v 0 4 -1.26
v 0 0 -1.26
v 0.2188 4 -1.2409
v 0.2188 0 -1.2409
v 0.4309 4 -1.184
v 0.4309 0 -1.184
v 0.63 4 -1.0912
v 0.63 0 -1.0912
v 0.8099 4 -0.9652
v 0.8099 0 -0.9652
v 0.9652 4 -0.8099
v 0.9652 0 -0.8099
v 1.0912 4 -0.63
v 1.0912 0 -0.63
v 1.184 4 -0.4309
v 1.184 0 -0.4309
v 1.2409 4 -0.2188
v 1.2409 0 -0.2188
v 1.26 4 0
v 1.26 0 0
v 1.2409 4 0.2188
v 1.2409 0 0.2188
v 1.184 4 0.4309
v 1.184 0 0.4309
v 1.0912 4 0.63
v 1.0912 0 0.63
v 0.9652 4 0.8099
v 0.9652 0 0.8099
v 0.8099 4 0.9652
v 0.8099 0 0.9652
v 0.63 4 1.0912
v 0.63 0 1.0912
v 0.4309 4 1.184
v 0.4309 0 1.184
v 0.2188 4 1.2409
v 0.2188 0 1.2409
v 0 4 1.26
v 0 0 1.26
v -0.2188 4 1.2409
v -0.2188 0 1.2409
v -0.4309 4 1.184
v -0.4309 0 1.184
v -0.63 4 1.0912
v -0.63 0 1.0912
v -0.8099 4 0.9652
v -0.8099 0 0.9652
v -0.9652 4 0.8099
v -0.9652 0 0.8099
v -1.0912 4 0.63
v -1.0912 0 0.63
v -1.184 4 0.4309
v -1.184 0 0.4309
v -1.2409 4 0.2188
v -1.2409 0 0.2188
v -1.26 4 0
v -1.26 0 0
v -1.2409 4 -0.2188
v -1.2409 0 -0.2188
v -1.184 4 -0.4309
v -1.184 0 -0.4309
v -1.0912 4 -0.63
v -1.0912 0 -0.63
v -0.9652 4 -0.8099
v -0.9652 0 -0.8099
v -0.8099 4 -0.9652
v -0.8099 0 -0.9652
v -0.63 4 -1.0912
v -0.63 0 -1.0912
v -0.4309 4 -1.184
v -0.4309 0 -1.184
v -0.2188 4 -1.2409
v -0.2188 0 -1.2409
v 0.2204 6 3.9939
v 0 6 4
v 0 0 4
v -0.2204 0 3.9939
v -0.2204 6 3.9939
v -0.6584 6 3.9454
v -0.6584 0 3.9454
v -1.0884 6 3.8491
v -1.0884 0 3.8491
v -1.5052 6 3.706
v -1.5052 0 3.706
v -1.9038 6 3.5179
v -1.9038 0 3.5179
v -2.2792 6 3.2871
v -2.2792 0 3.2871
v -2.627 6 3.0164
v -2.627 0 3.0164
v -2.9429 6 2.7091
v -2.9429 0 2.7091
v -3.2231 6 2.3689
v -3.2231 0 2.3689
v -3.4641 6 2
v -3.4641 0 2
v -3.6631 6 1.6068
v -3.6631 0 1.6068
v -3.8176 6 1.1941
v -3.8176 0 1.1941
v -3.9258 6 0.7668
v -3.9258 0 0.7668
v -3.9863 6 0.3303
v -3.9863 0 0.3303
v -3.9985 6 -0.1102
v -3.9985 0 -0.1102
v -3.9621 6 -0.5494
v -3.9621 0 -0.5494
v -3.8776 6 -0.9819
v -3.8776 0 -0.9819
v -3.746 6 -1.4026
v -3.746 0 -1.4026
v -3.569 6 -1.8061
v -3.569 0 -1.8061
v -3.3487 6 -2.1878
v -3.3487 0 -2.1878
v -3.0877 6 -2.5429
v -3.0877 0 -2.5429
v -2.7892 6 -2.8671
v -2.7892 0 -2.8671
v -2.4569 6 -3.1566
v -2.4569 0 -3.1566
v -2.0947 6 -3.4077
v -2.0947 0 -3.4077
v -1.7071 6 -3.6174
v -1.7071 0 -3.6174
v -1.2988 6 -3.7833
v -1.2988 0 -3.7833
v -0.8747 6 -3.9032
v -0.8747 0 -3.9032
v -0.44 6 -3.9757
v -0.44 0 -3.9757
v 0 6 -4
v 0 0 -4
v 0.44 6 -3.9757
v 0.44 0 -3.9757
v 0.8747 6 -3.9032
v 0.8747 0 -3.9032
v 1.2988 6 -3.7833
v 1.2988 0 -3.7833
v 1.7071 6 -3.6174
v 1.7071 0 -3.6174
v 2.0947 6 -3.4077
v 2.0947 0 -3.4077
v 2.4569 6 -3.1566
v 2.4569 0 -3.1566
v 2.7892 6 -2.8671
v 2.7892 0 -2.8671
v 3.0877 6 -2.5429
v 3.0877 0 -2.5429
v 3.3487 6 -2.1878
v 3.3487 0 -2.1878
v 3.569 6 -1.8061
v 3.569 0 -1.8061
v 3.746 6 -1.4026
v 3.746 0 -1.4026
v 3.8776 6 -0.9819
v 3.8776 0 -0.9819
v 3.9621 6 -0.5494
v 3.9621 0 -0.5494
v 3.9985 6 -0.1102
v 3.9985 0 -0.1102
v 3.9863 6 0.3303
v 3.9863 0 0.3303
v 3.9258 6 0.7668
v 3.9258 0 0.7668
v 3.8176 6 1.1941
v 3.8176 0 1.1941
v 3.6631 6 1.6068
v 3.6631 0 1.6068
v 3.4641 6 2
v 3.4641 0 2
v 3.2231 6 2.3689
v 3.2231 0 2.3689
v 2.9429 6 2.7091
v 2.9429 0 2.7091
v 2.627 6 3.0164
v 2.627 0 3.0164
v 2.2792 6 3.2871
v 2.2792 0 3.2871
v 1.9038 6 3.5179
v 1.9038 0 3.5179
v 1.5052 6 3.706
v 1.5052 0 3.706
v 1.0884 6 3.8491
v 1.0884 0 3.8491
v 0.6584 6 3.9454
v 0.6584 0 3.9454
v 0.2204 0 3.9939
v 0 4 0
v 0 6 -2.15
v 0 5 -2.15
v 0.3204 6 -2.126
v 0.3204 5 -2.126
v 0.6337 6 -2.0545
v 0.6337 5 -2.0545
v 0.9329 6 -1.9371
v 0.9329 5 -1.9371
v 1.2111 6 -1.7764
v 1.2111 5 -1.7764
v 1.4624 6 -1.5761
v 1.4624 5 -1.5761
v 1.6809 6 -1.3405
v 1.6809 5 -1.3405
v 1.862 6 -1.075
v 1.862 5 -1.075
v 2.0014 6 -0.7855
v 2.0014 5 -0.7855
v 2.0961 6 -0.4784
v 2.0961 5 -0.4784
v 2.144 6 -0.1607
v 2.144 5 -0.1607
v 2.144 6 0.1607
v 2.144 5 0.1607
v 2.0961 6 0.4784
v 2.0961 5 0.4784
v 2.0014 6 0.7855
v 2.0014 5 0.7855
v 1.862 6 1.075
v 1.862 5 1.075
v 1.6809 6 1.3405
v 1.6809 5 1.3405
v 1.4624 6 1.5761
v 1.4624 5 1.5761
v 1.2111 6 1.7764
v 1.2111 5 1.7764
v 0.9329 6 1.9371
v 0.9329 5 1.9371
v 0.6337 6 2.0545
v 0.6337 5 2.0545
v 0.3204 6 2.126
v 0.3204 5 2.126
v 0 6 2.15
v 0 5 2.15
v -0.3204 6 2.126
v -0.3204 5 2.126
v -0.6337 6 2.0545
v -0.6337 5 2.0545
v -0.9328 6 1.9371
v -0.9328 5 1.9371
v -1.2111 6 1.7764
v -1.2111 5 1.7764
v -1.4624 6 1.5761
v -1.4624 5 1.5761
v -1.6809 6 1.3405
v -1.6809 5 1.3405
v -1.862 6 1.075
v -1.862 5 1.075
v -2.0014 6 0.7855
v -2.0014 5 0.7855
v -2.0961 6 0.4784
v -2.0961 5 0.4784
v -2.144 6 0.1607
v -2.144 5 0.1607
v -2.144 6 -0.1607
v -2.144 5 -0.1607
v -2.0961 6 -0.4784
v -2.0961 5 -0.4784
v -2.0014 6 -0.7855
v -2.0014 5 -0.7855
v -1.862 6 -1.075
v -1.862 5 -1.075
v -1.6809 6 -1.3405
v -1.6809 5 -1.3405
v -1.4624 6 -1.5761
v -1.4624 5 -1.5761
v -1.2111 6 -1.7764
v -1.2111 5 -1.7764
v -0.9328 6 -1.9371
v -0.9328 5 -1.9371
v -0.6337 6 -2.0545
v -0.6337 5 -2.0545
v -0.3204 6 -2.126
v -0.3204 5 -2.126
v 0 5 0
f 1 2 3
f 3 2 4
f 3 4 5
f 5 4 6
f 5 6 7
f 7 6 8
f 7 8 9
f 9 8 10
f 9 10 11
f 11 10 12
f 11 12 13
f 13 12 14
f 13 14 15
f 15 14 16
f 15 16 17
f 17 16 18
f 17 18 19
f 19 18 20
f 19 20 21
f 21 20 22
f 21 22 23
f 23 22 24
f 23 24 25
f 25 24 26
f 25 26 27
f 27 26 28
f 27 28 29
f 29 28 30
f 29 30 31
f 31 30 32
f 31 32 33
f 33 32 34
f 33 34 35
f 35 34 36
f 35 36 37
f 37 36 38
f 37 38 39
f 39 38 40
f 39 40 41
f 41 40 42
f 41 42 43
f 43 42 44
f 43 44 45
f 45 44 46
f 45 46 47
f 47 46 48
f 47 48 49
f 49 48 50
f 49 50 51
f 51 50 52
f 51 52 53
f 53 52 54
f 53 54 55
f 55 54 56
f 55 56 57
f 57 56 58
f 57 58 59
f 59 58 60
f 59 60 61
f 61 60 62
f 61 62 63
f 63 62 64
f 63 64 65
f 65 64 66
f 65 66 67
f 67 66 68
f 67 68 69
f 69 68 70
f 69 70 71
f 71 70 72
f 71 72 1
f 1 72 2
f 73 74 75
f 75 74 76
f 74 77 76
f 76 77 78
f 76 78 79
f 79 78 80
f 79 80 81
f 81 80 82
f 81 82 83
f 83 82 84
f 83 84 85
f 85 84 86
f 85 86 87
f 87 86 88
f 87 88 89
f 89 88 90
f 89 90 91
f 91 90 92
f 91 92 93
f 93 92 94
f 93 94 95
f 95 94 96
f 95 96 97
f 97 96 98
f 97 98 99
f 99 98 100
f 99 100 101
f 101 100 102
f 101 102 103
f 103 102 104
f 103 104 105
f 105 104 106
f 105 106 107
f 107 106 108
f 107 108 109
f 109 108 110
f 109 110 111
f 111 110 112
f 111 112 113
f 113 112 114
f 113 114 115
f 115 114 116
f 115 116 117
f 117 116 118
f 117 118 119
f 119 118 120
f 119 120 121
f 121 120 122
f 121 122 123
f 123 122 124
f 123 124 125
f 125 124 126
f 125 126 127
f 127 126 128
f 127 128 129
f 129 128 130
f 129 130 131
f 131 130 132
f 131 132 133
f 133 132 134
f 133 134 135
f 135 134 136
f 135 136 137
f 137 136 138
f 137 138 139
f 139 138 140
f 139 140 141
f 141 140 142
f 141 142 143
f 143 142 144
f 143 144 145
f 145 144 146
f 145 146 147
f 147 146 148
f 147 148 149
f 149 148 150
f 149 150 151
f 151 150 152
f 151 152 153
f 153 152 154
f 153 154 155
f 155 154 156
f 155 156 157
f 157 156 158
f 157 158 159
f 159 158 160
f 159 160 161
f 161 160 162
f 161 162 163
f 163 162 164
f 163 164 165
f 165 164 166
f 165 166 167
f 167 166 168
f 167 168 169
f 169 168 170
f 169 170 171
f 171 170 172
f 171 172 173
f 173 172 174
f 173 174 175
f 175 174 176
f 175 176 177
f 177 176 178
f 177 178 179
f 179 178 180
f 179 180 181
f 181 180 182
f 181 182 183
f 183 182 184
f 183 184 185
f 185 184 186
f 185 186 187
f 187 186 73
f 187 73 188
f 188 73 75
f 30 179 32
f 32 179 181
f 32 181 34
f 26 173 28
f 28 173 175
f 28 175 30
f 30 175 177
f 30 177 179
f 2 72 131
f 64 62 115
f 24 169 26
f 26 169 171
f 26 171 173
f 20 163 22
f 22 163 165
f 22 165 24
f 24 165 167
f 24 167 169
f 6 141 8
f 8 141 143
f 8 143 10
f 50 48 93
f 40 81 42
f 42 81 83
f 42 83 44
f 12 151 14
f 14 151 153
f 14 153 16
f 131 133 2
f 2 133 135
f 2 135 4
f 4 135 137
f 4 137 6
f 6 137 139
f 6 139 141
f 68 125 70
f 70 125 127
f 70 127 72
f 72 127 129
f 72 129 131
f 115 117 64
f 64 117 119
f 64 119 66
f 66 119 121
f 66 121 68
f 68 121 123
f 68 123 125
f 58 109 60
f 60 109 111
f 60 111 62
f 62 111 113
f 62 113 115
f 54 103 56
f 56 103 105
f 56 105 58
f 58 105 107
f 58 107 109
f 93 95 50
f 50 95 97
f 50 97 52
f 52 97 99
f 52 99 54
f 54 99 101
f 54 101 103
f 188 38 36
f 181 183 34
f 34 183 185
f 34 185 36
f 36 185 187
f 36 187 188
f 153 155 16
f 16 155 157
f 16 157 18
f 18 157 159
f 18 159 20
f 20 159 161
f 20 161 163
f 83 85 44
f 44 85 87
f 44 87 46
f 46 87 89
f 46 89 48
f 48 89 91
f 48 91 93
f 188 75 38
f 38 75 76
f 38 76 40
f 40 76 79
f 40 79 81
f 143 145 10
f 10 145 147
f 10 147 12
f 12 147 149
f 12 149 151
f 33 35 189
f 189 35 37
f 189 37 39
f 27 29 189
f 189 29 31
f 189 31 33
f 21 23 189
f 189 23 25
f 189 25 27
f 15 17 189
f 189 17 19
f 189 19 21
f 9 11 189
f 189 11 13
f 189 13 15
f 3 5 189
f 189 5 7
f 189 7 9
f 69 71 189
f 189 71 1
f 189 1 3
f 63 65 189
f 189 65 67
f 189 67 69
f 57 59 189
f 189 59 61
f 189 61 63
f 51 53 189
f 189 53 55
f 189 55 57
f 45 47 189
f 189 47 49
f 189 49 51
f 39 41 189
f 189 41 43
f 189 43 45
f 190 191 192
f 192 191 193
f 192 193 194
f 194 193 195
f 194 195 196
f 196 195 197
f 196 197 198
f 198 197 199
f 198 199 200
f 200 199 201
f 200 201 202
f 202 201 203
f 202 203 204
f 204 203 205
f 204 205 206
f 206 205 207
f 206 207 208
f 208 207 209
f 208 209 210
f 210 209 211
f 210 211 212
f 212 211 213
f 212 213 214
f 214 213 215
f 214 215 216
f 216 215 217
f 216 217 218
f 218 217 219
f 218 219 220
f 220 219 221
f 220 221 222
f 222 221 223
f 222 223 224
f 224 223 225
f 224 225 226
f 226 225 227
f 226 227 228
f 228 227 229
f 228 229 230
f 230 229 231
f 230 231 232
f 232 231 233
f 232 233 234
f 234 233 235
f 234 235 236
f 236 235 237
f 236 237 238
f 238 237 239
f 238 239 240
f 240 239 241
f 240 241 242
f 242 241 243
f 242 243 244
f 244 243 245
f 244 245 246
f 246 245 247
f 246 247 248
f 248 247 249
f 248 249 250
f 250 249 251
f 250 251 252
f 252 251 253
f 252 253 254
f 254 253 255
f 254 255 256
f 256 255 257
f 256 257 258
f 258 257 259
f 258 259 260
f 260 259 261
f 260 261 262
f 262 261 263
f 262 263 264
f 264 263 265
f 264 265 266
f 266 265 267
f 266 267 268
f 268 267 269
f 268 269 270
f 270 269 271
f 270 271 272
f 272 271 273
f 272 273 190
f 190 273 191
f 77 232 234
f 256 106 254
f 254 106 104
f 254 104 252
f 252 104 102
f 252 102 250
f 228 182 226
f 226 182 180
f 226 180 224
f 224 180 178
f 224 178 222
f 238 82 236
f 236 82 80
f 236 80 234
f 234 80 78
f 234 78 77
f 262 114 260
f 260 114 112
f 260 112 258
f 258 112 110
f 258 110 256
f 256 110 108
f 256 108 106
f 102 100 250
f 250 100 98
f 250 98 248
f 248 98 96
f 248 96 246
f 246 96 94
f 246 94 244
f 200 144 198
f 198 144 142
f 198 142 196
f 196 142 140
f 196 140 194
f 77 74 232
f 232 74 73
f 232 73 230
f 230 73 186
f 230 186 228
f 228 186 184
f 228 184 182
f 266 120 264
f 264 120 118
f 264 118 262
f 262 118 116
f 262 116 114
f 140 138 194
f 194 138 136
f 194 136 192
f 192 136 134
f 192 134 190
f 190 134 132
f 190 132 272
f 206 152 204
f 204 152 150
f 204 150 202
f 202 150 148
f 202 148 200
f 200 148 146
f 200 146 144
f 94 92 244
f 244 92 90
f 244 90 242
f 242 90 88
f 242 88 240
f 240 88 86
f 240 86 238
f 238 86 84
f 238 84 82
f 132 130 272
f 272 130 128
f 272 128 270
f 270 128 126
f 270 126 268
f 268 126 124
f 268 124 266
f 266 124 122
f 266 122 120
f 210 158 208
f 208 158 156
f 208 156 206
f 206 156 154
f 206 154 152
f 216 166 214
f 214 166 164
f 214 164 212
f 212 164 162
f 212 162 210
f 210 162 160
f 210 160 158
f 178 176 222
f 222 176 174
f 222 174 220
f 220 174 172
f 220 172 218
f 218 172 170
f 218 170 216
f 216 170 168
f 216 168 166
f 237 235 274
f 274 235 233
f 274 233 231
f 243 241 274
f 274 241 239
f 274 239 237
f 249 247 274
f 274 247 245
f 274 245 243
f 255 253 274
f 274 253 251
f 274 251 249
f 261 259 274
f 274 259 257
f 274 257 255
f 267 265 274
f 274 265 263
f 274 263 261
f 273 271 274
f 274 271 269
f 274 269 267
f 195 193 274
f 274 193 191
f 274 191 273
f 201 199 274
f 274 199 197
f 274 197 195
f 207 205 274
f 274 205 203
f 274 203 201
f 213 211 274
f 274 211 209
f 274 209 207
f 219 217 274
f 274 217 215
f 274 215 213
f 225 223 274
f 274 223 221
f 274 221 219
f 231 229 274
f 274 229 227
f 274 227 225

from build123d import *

# Parameters (mm, degrees)
SKETCH1_R        = 4
SKETCH1_R_2      = 1.26
EXTRUSION1_DEPTH = 4
SKETCH2_R        = 4
EXTRUSION2_DEPTH = 1
SKETCH3_R        = 4
SKETCH3_R_2      = 2.15
EXTRUSION3_DEPTH = 1


with BuildPart() as part:
    # Sketch1 → Extrusion1 (new body)
    with BuildSketch(Plane(origin=(0, 0, 0), x_dir=(-1, 0, 0), z_dir=(0, 1, 0))):
        with Locations(Location((0, 0, 0), (0, 0, 90))):
            Circle(SKETCH1_R)
        with Locations(Location((0, 0, 0), (0, 0, 90))):
            Circle(SKETCH1_R_2, mode=Mode.SUBTRACT)
    extrude(amount=EXTRUSION1_DEPTH)

    # Sketch2 → Extrusion2 (add)
    with BuildSketch(Plane(origin=(0, 4, 0), x_dir=(1, 0, 0), z_dir=(0, 1, 0))):
        with Locations(Location((0, 0, 0), (0, 0, 270))):
            Circle(SKETCH2_R)
    extrude(amount=EXTRUSION2_DEPTH)

    # Sketch3 → Extrusion3 (add)
    with BuildSketch(Plane(origin=(0, 5, 0), x_dir=(-1, 0, 0), z_dir=(0, 1, 0))):
        with Locations(Location((0, 0, 0), (0, 0, 90))):
            Circle(SKETCH3_R)
        with Locations(Location((0, 0, 0), (0, 0, 90))):
            Circle(SKETCH3_R_2, mode=Mode.SUBTRACT)
    extrude(amount=EXTRUSION3_DEPTH)


solid = part.part
